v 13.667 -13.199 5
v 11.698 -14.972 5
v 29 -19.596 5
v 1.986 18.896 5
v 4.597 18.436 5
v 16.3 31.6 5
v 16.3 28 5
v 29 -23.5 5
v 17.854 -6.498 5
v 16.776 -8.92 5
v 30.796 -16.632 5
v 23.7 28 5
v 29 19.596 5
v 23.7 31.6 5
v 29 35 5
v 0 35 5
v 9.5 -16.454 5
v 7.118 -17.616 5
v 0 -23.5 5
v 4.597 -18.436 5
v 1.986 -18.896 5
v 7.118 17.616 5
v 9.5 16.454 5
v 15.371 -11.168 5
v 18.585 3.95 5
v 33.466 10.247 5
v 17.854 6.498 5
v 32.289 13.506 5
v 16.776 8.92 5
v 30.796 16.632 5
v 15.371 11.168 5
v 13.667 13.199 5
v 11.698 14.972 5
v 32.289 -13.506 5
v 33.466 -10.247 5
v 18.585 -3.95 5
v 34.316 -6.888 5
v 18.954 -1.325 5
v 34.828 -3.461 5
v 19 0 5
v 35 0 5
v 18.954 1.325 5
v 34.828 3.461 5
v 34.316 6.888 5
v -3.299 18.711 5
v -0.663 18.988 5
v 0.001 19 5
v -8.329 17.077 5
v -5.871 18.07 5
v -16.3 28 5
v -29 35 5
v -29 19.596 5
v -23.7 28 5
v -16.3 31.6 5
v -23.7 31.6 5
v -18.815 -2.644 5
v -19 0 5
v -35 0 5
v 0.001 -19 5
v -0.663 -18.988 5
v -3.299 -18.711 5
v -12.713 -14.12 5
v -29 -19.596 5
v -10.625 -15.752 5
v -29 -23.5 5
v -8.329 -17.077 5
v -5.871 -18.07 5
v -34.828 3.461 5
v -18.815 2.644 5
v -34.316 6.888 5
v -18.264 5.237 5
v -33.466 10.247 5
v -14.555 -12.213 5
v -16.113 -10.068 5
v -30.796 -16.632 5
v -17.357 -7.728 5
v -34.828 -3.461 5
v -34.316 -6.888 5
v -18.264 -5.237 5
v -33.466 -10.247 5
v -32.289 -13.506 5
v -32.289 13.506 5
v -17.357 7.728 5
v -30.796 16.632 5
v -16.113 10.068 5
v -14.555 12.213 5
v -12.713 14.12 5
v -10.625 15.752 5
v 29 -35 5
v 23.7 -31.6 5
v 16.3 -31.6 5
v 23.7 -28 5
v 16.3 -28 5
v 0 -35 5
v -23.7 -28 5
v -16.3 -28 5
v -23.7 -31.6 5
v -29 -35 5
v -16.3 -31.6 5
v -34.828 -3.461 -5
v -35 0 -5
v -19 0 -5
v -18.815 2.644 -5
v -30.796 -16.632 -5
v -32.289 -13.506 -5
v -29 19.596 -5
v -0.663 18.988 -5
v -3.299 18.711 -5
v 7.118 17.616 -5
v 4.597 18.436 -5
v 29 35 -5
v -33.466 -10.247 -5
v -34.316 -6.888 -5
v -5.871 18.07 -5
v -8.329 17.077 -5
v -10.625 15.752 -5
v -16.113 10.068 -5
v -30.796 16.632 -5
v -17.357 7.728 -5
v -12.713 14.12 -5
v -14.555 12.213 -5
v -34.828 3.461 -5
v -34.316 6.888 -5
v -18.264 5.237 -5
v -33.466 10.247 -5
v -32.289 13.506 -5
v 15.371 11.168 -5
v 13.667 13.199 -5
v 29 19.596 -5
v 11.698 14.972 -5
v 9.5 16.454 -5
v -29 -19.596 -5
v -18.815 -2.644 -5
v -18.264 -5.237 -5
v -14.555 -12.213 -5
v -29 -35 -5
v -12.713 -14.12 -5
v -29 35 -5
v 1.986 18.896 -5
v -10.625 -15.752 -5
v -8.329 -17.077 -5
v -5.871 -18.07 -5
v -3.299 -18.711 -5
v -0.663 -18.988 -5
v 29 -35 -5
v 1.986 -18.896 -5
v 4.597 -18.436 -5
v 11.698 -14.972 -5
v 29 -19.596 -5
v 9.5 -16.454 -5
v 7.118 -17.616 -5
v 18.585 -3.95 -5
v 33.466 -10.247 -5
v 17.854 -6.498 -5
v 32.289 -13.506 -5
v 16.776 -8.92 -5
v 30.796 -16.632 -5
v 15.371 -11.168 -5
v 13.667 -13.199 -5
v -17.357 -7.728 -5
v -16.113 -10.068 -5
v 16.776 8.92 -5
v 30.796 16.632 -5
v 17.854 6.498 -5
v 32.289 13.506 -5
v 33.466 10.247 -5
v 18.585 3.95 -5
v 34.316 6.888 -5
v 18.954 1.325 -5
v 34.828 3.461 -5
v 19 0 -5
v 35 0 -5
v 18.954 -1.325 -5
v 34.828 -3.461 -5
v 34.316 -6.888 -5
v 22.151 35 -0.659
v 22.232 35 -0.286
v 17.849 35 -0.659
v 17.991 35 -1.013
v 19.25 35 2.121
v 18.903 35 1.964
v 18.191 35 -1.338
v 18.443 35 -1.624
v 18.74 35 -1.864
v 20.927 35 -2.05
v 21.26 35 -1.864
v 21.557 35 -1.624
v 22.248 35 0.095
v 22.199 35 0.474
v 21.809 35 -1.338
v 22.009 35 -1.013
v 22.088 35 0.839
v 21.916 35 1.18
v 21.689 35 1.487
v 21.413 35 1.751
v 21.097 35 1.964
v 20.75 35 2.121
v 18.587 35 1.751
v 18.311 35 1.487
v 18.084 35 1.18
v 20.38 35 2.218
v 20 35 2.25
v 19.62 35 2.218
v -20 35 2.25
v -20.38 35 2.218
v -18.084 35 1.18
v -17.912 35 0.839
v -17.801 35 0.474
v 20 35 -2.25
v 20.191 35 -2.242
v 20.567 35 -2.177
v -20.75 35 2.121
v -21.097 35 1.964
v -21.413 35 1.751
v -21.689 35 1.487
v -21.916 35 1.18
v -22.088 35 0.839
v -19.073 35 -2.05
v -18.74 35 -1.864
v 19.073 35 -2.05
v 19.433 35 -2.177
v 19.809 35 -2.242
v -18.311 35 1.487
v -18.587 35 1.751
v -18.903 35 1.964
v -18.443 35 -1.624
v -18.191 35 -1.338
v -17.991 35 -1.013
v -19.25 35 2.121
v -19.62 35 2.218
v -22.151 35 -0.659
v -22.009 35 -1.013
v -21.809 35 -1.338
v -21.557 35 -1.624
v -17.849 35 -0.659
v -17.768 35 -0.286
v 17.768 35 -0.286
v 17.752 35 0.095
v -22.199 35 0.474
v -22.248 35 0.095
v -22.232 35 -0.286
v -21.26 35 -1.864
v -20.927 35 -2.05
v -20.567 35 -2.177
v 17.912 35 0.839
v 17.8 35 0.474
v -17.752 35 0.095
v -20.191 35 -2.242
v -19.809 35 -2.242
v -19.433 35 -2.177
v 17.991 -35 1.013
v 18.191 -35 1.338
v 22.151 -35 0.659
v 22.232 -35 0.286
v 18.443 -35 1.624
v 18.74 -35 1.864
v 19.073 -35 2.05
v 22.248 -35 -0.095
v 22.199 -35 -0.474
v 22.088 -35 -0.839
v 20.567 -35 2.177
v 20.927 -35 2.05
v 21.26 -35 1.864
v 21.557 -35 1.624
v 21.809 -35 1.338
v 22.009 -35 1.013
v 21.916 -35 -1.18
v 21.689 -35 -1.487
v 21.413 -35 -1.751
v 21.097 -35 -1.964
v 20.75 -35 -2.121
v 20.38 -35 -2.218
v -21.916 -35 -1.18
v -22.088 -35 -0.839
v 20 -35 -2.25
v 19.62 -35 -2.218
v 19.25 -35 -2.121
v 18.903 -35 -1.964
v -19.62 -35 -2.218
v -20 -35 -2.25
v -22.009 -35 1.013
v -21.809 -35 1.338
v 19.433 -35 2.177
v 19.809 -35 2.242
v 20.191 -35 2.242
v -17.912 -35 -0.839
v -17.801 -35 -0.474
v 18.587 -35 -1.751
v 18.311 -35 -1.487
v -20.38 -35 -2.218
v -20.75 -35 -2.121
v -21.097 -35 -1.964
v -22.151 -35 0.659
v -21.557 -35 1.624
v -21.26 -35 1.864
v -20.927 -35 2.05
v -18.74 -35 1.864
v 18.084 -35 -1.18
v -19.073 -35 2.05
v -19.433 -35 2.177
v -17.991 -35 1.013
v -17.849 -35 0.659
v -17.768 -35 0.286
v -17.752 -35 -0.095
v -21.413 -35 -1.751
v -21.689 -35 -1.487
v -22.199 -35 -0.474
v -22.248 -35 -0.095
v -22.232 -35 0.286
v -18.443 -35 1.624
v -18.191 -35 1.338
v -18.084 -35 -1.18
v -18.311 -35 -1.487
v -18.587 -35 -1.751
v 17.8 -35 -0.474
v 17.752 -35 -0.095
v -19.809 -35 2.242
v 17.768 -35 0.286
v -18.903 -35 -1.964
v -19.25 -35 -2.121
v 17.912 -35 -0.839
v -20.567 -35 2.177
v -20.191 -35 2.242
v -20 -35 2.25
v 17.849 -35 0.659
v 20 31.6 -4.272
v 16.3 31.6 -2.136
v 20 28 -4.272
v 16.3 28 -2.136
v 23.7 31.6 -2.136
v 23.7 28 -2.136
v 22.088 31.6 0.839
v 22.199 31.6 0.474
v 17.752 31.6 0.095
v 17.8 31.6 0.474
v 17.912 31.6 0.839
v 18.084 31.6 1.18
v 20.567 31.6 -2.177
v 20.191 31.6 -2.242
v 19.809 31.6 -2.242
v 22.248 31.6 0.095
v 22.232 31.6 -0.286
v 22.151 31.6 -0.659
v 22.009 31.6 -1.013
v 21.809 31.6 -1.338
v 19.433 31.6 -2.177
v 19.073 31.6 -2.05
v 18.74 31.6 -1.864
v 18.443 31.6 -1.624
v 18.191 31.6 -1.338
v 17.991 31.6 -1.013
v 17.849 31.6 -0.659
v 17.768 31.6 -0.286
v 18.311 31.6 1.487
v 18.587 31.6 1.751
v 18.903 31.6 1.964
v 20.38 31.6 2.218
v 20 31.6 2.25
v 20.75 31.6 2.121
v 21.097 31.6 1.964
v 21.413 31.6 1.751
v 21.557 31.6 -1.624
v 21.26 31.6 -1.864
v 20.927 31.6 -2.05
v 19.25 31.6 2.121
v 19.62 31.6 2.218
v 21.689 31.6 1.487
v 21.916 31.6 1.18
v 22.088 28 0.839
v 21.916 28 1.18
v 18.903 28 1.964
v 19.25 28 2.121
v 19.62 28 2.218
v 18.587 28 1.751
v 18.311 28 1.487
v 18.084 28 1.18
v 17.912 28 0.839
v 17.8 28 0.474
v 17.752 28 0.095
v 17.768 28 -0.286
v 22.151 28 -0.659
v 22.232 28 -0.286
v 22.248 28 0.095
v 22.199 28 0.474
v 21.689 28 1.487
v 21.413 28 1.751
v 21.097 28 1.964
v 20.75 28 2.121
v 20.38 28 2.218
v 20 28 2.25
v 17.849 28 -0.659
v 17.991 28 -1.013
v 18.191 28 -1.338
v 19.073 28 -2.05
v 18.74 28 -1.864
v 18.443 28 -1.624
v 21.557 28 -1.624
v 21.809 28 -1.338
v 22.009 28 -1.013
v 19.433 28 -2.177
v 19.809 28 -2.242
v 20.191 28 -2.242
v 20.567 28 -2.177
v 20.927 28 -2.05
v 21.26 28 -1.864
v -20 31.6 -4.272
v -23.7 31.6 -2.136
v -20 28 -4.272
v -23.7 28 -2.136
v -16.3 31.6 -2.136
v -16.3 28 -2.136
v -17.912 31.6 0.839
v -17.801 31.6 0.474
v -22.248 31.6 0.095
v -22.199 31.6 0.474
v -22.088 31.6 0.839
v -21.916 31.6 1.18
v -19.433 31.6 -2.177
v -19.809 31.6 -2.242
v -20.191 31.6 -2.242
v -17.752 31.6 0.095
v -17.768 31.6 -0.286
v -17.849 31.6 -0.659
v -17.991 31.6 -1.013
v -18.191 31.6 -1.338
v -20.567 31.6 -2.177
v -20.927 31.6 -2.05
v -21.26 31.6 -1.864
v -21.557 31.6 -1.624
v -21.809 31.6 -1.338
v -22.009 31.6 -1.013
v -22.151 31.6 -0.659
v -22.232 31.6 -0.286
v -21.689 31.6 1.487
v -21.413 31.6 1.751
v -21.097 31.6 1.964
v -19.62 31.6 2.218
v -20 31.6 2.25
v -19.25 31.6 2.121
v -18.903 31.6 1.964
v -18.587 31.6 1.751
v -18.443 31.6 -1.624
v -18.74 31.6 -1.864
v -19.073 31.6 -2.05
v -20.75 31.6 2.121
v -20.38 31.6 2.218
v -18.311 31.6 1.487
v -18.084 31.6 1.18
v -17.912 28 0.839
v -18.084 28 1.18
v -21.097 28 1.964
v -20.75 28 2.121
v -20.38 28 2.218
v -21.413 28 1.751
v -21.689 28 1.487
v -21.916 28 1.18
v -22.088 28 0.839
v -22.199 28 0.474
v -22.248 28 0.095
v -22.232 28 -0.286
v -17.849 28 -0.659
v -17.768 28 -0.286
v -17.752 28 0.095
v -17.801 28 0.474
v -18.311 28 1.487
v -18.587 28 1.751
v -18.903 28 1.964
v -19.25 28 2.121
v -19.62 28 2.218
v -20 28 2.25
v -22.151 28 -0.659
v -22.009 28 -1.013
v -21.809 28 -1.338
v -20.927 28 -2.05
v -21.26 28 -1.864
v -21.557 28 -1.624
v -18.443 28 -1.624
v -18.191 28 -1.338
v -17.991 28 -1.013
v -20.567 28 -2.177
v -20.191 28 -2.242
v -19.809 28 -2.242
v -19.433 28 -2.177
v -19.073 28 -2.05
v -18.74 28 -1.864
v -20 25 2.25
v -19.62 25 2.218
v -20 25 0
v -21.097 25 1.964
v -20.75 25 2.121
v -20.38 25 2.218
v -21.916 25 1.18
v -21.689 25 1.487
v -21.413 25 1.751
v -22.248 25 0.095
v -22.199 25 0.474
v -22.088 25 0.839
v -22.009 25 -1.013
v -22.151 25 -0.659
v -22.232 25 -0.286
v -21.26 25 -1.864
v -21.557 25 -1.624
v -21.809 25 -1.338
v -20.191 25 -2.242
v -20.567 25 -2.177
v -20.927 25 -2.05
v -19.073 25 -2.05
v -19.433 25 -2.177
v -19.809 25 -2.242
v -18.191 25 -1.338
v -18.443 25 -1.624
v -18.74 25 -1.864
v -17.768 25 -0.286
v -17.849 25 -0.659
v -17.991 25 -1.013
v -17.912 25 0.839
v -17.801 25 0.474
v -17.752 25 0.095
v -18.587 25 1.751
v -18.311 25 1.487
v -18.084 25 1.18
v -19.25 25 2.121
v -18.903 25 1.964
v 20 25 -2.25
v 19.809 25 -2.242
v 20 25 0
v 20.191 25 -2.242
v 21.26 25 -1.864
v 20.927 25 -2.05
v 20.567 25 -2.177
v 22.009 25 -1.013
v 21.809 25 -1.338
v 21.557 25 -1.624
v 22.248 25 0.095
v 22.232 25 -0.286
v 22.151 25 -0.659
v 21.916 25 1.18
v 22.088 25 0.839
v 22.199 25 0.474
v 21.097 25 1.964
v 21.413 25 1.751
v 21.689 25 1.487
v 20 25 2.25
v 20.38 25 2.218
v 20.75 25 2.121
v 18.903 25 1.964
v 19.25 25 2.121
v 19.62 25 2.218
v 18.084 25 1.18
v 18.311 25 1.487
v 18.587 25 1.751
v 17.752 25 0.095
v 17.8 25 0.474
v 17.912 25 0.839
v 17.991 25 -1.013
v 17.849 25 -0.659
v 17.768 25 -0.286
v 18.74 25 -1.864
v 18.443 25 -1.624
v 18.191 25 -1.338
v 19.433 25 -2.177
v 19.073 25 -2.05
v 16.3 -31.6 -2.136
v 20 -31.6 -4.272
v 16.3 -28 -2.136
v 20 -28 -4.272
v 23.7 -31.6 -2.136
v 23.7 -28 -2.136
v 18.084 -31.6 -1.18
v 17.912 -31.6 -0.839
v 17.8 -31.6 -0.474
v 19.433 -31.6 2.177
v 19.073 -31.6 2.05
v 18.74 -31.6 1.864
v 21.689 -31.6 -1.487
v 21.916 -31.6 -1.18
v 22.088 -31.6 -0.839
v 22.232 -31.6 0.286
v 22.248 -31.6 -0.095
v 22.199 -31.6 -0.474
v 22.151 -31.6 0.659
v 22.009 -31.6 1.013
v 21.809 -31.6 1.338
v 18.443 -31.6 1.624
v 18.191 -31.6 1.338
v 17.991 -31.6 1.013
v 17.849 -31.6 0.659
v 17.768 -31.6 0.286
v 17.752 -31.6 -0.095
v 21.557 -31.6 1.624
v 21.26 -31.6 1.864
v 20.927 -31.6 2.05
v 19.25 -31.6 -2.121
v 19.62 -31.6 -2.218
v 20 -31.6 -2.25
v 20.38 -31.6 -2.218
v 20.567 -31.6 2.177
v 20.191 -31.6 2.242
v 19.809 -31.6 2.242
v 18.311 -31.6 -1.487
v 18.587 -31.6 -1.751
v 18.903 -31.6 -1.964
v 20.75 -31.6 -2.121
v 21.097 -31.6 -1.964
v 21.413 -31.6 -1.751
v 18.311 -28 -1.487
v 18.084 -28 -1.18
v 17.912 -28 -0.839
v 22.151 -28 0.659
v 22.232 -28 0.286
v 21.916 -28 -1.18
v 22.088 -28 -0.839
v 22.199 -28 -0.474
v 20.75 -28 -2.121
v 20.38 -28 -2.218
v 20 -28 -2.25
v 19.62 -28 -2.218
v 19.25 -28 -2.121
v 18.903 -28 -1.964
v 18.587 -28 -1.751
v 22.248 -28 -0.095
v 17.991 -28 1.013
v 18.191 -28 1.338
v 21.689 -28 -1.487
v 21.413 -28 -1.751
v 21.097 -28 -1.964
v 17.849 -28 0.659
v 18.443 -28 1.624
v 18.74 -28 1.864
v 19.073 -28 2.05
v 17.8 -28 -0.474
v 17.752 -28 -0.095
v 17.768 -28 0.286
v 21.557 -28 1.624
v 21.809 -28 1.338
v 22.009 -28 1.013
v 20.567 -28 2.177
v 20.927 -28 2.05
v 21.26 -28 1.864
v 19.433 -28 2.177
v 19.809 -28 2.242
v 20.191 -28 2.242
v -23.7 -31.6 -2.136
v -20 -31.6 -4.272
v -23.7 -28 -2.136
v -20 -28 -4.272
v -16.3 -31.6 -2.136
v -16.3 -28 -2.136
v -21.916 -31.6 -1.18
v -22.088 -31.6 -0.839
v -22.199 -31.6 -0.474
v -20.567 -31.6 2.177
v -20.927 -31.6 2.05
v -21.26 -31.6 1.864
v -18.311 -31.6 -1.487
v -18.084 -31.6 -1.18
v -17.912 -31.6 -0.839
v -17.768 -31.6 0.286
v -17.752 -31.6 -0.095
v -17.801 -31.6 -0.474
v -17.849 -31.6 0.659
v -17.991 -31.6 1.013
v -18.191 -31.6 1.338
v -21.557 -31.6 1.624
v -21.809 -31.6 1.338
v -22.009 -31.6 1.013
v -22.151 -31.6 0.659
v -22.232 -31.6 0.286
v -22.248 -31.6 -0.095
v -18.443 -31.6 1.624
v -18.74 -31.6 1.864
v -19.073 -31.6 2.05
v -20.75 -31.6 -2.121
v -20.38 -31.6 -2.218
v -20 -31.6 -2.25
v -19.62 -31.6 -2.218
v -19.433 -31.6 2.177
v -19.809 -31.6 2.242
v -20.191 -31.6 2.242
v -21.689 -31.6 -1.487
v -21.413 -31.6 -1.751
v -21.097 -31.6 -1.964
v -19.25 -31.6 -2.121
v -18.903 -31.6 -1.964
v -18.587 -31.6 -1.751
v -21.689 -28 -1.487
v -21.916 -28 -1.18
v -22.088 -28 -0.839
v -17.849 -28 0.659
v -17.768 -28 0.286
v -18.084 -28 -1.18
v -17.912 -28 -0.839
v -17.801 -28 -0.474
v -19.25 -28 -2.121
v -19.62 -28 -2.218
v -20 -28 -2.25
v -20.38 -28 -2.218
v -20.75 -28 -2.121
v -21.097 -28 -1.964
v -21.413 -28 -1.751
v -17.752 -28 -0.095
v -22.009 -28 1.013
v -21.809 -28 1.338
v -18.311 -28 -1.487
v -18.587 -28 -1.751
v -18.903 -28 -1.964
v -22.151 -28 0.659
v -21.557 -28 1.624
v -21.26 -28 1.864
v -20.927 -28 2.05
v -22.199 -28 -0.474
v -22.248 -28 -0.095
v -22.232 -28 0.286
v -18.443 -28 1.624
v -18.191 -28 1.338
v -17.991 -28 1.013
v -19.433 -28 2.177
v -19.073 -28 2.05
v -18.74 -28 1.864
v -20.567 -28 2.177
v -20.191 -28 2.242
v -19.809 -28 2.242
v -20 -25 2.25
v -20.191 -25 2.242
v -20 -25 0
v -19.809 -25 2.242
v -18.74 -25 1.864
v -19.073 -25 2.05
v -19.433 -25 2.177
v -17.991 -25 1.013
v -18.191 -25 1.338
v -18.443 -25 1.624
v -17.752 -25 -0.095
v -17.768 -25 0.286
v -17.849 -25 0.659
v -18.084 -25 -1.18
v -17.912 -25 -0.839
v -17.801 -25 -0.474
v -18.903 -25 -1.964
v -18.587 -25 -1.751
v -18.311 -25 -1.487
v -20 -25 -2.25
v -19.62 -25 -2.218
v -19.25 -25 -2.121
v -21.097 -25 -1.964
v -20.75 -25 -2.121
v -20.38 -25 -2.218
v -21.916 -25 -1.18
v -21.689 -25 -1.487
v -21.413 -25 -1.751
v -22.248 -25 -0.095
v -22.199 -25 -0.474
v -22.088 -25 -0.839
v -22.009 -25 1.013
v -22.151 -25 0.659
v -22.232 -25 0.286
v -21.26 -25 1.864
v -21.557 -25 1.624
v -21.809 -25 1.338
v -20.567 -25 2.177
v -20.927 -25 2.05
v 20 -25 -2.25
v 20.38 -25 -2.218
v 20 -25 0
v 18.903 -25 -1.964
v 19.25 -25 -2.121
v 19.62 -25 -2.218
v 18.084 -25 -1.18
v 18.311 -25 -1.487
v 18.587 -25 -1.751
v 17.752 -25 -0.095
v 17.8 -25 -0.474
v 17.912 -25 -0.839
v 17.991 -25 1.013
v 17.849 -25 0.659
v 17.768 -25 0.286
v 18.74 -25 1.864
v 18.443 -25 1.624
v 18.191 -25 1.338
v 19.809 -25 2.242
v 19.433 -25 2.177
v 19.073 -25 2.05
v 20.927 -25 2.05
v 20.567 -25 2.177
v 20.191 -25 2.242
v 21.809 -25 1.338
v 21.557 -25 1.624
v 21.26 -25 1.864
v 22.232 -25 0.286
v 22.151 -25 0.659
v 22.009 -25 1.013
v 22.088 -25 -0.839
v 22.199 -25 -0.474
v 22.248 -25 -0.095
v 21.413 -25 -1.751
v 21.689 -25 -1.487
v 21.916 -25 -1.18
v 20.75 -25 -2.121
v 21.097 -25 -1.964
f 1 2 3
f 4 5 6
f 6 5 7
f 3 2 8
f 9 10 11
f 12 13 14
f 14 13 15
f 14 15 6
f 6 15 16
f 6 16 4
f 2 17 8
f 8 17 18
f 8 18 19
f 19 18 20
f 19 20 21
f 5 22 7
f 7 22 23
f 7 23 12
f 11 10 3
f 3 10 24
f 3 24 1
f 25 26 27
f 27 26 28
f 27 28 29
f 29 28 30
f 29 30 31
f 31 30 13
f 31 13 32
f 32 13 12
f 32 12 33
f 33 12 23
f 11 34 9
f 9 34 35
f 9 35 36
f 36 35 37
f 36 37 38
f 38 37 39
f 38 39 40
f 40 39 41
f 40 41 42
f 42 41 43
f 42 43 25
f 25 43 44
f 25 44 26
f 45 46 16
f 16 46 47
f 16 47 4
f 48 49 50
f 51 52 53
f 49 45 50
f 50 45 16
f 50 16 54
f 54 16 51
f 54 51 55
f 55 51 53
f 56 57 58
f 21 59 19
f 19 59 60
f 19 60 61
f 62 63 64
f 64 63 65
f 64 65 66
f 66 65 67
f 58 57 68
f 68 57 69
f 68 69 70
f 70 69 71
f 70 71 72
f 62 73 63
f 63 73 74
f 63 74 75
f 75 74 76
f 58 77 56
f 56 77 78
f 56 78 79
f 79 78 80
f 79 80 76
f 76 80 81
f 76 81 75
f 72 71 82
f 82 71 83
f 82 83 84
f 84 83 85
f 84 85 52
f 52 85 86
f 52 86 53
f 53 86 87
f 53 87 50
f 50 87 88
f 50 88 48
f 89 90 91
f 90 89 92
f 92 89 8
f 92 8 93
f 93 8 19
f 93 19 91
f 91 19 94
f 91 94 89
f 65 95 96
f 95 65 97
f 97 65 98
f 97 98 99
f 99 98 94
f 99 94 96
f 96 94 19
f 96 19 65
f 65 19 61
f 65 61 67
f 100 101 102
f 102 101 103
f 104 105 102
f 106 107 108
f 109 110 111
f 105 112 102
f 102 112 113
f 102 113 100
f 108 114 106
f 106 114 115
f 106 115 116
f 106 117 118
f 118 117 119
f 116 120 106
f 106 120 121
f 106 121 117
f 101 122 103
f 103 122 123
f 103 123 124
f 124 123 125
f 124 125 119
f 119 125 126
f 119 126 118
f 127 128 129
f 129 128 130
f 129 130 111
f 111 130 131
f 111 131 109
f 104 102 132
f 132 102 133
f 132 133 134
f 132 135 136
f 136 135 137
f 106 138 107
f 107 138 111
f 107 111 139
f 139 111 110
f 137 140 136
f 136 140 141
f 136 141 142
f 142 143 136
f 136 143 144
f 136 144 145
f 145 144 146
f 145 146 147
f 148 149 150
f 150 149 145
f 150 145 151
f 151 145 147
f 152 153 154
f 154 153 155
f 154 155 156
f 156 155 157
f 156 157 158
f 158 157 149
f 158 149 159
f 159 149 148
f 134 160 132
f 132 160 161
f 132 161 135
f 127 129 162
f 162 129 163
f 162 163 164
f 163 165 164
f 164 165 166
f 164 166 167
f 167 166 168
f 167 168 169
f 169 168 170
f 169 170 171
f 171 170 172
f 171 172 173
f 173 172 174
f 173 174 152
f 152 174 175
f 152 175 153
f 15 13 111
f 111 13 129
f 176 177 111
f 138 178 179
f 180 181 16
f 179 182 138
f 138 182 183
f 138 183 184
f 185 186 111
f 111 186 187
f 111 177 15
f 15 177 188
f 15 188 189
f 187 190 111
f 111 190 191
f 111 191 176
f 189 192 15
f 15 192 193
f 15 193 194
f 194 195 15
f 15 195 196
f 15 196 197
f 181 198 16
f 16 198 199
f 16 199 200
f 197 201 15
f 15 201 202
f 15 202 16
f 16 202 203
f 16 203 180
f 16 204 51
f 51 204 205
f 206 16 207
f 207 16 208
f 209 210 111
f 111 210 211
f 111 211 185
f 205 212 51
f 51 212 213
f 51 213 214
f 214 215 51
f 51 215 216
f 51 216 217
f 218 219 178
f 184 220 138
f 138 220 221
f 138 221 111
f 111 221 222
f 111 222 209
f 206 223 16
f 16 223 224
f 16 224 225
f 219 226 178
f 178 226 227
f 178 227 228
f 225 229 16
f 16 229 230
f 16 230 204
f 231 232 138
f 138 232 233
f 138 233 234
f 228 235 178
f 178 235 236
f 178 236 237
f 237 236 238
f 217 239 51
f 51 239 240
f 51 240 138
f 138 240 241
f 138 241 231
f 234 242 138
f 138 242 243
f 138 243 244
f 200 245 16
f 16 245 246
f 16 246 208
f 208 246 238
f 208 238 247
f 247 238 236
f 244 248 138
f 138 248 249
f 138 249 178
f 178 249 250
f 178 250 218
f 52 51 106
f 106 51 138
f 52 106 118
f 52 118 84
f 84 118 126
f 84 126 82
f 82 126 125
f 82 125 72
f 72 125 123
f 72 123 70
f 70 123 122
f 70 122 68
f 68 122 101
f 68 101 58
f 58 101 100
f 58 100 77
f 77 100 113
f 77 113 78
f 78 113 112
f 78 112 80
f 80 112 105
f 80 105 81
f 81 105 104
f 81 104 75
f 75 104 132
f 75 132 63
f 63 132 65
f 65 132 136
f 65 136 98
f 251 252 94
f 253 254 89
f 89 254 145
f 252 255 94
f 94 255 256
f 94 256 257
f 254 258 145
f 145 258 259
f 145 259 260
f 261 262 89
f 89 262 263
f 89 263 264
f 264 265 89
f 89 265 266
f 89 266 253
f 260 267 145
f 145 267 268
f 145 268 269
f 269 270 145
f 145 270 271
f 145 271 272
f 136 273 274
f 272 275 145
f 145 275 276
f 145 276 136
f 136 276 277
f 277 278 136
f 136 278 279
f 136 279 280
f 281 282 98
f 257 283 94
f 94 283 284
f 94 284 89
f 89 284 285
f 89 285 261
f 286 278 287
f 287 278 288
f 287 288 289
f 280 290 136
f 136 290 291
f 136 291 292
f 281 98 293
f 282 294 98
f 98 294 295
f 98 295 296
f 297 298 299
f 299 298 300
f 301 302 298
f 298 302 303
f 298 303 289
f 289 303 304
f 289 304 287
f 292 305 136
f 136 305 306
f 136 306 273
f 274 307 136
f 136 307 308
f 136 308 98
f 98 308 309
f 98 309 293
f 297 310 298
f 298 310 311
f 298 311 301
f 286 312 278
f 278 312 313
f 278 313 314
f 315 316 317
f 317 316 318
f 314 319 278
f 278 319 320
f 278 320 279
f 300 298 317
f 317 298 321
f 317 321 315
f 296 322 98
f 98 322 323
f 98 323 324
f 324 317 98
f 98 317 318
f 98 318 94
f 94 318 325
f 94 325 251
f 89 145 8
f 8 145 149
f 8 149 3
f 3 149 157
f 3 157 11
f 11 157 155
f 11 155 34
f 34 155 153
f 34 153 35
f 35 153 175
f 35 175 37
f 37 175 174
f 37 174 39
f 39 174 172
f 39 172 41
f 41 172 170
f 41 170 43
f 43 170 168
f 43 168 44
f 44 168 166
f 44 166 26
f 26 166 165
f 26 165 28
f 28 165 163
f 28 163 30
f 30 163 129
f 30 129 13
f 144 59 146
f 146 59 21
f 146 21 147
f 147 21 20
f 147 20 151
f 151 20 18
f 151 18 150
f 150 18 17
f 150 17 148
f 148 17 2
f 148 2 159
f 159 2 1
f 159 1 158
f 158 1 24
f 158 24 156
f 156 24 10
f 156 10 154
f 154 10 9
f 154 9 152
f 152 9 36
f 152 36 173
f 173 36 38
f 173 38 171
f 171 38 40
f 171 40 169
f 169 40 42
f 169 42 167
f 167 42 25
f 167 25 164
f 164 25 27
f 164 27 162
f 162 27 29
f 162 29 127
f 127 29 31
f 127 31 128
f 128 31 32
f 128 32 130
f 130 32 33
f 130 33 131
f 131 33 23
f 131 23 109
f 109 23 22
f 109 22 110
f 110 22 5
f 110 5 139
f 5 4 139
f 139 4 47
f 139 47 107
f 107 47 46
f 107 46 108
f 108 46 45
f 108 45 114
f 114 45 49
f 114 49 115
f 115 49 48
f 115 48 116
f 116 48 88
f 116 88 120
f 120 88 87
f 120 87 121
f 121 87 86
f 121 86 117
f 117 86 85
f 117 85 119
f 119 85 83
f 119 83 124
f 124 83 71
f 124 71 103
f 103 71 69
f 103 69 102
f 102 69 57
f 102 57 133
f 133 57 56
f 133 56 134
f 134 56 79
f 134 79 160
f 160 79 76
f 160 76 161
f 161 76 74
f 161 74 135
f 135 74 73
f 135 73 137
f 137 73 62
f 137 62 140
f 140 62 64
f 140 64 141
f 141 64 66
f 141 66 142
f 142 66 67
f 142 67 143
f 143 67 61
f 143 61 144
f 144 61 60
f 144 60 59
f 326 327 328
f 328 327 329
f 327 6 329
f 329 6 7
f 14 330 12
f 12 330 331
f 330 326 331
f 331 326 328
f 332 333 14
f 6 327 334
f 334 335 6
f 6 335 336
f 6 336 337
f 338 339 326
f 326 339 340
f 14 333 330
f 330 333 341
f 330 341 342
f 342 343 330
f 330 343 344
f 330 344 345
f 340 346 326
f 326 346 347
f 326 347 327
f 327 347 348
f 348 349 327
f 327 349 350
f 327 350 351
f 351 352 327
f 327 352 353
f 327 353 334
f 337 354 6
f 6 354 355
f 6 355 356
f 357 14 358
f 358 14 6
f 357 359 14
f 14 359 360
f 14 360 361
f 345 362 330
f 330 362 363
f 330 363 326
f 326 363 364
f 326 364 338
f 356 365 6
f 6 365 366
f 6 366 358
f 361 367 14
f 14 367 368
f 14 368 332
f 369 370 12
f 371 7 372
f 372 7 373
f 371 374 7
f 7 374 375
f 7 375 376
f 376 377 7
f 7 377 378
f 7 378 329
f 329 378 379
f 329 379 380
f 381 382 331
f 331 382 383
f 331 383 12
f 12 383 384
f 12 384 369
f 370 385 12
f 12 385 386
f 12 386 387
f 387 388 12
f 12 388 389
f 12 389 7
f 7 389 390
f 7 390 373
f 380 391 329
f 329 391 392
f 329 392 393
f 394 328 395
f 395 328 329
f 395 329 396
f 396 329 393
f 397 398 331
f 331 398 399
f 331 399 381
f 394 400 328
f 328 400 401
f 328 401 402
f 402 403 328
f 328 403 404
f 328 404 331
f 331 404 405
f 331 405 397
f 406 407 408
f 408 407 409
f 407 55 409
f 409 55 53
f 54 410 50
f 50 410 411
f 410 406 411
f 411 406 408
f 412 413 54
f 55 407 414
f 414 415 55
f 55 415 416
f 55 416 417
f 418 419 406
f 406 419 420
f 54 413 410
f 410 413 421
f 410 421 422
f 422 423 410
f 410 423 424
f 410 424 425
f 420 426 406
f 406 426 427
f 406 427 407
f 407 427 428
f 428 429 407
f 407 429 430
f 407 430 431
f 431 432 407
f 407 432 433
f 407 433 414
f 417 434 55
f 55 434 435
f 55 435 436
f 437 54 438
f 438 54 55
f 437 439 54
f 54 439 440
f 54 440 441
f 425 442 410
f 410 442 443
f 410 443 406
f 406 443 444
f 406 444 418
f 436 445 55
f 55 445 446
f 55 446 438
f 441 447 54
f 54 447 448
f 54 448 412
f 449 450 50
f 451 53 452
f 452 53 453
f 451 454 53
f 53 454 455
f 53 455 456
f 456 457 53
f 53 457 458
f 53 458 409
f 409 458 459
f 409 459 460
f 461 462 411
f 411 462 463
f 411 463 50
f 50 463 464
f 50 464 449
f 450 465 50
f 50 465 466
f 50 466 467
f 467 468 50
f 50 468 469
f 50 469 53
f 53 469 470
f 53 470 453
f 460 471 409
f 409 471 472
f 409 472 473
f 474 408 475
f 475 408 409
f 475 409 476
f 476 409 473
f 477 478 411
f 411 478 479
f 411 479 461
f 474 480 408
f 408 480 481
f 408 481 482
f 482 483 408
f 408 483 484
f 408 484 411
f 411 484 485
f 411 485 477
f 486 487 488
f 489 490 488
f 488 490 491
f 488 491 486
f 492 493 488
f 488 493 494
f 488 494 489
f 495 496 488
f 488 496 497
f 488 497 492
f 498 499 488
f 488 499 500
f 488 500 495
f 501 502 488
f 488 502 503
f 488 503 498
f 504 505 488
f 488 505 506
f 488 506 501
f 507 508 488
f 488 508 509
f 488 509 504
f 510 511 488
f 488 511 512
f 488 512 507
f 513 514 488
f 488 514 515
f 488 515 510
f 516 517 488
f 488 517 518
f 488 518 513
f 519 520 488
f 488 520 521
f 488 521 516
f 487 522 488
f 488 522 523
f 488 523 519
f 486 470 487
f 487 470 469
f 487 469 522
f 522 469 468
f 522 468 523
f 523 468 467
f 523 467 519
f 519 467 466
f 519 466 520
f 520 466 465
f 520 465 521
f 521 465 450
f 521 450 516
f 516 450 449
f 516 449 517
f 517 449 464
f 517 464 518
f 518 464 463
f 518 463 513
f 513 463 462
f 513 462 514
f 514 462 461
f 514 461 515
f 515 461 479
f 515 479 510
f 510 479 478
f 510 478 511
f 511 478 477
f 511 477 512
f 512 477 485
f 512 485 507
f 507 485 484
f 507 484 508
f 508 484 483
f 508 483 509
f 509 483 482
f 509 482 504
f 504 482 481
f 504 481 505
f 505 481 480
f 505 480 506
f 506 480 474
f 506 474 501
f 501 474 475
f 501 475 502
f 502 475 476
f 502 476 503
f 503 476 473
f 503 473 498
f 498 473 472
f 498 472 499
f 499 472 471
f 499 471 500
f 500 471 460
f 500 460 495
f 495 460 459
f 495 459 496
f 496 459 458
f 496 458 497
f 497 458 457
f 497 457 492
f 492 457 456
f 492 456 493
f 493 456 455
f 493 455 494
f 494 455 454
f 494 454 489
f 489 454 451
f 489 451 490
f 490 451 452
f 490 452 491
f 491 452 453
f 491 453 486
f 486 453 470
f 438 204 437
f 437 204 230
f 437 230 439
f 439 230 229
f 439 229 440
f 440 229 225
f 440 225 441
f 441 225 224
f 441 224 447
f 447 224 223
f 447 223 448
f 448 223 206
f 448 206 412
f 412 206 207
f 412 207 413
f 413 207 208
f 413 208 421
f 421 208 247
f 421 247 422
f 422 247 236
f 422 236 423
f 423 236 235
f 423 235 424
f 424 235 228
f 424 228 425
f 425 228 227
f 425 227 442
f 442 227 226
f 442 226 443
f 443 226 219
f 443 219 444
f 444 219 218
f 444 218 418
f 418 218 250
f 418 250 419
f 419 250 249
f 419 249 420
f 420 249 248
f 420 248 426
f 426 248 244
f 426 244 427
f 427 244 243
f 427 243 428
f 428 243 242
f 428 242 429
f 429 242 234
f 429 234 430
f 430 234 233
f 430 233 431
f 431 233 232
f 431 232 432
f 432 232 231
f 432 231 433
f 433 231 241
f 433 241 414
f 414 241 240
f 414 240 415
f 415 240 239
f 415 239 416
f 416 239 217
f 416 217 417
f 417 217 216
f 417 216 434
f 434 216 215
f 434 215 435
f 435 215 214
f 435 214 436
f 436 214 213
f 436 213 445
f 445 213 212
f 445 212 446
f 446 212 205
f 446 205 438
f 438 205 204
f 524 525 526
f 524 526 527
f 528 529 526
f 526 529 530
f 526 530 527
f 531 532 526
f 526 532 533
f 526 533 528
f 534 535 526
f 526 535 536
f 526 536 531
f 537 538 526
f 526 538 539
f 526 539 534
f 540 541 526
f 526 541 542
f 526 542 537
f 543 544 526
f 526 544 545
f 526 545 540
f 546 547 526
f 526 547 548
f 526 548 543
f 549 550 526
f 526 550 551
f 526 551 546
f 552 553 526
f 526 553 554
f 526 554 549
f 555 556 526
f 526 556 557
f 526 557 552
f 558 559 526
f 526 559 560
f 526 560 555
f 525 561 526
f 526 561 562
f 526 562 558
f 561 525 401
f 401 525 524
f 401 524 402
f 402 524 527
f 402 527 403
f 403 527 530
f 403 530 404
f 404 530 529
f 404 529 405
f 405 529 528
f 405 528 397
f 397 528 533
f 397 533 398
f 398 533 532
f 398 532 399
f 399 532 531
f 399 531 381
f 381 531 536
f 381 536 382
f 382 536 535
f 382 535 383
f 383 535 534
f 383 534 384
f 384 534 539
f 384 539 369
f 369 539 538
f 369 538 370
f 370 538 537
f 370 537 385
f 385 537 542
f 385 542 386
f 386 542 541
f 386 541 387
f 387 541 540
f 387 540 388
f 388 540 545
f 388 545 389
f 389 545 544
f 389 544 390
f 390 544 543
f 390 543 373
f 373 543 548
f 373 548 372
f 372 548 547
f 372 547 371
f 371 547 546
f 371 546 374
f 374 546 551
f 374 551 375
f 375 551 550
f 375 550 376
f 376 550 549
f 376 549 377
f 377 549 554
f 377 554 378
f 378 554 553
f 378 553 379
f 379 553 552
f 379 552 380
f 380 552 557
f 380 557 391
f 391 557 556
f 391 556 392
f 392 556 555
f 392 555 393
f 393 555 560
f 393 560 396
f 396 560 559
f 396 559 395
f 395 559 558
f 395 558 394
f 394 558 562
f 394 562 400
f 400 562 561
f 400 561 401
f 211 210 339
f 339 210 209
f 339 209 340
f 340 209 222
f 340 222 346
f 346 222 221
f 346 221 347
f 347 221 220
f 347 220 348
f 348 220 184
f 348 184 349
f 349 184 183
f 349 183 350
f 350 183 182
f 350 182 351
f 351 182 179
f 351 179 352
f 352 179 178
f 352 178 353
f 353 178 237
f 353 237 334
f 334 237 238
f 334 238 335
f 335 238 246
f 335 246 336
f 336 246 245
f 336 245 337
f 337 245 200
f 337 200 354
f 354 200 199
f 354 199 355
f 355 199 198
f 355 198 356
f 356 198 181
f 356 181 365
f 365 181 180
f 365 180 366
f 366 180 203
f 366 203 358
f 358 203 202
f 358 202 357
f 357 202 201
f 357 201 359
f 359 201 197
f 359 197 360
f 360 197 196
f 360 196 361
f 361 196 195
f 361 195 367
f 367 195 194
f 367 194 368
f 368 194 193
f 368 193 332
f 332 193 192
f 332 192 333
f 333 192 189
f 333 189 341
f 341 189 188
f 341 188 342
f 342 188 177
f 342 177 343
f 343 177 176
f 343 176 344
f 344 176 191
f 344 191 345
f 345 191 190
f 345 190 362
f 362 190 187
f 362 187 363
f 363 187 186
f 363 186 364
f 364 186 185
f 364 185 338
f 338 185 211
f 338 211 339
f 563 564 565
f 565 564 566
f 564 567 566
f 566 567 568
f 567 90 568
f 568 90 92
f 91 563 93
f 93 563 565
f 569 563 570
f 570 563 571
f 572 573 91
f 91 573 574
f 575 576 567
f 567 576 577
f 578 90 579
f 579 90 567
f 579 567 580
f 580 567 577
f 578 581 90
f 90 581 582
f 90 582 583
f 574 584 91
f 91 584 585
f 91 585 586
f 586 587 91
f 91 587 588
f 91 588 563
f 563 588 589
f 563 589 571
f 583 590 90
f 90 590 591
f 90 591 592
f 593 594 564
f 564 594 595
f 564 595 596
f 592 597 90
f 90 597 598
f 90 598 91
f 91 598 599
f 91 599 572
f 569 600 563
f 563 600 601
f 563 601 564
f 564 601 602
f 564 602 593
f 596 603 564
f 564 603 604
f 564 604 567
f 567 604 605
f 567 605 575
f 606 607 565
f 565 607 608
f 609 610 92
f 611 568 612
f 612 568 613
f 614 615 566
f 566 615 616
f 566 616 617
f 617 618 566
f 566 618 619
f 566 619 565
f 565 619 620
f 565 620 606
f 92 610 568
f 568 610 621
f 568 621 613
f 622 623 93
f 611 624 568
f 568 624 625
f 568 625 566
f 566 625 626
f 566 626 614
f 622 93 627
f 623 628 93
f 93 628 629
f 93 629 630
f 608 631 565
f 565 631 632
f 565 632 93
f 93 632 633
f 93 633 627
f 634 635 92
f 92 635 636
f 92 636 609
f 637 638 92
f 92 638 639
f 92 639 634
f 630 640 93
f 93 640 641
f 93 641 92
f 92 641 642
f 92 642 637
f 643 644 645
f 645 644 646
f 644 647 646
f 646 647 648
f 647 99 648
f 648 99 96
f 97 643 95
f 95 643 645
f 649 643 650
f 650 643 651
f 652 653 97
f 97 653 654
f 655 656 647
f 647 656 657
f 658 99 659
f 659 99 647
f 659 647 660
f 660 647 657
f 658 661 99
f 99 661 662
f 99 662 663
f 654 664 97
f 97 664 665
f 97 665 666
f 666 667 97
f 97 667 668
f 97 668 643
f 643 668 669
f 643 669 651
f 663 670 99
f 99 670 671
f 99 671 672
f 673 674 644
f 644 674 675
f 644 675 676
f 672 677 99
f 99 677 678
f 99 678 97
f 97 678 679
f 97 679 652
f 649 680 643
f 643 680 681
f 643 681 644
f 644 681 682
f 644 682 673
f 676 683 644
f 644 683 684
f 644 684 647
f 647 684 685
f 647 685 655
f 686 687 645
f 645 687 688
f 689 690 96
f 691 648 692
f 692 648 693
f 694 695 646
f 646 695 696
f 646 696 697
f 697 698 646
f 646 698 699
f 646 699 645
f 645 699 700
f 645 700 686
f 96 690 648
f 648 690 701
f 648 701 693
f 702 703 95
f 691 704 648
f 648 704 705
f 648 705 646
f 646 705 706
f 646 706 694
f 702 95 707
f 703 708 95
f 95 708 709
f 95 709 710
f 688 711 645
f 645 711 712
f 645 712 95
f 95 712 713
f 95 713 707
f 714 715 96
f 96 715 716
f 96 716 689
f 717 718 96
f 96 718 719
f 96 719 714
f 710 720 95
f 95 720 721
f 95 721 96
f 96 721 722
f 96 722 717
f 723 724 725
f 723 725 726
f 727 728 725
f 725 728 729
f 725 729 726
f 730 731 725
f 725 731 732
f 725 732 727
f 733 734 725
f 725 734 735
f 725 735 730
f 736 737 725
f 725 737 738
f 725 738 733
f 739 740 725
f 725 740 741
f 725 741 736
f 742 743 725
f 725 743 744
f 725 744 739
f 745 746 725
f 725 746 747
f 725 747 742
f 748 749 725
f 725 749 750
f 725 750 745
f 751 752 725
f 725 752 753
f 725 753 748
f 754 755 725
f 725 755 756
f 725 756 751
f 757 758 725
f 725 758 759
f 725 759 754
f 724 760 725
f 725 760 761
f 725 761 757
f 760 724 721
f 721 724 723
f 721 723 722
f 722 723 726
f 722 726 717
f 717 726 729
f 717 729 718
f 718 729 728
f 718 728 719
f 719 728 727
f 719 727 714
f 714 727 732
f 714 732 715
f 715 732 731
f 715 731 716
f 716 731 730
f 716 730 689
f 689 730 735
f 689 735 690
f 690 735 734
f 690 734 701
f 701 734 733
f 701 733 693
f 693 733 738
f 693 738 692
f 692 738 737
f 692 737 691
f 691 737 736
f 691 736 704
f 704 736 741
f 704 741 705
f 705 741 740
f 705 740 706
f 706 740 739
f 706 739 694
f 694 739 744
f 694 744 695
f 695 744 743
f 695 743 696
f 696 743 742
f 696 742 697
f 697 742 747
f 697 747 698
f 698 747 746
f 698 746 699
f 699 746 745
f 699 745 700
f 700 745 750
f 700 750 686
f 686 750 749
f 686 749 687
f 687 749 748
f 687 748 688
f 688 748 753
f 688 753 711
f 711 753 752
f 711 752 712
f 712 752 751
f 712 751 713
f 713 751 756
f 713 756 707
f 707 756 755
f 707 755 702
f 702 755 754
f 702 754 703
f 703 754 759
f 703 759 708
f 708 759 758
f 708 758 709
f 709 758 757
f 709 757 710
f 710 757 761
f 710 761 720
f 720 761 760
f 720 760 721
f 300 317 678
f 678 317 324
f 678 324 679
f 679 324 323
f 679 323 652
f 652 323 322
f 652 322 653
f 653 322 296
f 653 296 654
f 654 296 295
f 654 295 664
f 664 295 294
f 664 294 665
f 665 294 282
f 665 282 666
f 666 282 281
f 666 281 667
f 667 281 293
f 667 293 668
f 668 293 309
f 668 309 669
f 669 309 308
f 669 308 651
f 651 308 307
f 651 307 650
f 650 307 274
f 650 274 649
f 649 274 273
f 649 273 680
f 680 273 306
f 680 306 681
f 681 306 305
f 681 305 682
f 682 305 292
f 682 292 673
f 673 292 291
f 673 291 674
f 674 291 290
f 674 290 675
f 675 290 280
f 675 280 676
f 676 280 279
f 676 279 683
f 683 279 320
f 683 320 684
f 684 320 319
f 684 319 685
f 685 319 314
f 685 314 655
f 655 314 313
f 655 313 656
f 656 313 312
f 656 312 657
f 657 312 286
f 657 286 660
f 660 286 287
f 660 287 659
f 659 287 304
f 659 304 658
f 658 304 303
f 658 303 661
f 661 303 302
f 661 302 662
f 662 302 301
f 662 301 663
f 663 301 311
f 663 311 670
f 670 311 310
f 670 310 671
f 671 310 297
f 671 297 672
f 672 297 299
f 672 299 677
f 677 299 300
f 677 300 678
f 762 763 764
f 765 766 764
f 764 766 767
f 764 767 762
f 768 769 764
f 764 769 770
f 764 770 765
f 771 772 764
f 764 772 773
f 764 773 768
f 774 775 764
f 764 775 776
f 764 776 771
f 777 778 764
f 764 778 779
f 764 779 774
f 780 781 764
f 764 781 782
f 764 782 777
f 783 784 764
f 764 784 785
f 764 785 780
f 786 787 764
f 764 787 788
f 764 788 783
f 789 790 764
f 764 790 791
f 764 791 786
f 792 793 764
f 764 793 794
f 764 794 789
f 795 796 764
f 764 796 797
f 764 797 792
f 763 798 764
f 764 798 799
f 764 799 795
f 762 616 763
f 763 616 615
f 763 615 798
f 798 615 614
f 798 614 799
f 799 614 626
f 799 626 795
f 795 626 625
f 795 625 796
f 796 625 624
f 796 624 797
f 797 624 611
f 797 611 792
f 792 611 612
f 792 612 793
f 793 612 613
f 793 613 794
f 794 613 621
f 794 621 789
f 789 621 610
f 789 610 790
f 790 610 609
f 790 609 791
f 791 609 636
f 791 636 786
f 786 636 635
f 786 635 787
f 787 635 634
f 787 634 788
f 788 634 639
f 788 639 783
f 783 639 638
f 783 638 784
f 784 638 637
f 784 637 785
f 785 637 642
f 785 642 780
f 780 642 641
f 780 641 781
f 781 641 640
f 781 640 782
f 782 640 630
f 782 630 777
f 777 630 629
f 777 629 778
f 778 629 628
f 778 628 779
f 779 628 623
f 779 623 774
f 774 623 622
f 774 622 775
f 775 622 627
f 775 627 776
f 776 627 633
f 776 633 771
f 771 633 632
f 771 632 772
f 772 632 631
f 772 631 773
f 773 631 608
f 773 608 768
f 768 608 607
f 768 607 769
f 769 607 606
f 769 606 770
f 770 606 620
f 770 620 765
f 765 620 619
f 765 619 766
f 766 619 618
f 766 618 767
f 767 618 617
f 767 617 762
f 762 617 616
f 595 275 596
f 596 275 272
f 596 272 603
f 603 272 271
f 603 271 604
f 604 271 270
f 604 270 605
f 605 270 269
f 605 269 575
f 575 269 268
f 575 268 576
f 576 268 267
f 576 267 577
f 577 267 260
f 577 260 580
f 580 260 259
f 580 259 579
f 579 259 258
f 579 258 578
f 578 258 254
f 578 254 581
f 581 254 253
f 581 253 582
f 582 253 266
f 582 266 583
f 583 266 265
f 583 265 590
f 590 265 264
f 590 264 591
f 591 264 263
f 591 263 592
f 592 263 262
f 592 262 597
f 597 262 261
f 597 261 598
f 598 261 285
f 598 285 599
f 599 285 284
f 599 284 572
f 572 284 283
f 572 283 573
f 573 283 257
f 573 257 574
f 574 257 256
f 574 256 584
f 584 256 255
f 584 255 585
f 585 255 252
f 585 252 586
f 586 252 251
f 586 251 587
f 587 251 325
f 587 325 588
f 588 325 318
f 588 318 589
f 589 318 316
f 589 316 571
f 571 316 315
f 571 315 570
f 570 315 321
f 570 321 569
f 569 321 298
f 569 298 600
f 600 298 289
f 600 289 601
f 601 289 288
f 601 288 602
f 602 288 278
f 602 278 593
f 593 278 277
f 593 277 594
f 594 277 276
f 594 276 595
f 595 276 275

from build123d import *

# Parameters (mm, degrees)
CROQUIS1_R              = 19
SALIENTE_EXTRUIR1_DEPTH = 5
CORTAR_EXTRUIR1_DEPTH   = 3.6
CROQUIS6_R              = 2.25
CORTAR_EXTRUIR2_DEPTH   = 10


with BuildPart() as part:
    # Croquis1 → Saliente-Extruir1 (new, symmetric)
    with BuildSketch(Plane.XY):
        with BuildLine():
            Line((-29, 19.595917942), (-29, 35))
            Line((-29, 35), (29, 35))
            Line((29, 35), (29, 19.595917942))
            ThreePointArc((29, 19.595917942), (35, 0), (29, -19.595917942))
            Line((29, -19.595917942), (29, -35))
            Line((29, -35), (-29, -35))
            Line((-29, -35), (-29, -19.595917942))
            ThreePointArc((-29, -19.595917942), (-35, 0), (-29, 19.595917942))
        make_face()
        Circle(CROQUIS1_R, mode=Mode.SUBTRACT)
    extrude(amount=SALIENTE_EXTRUIR1_DEPTH, both=True)

    # Croquis5 → Cortar-Extruir1 (cut)
    with BuildSketch(Plane(origin=(0, 28, 0), x_dir=(1, 0, 0), z_dir=(0, 1, 0))):
        Polygon((-23.7, -2.136195996), (-23.7, -5), (-16.3, -5), (-16.3, -2.136195996), (-16.3, 2.136195996), (-20, 4.272391992), (-23.7, 2.136195996), align=None)
        Polygon((16.3, 2.136195996), (16.3, -2.136195996), (16.3, -5), (23.7, -5), (23.7, -2.136195996), (23.7, 2.136195996), (20, 4.272391992), align=None)
    cortar_extruir1 = extrude(amount=CORTAR_EXTRUIR1_DEPTH, mode=Mode.SUBTRACT)

    # Croquis6 → Cortar-Extruir2 (cut)
    with BuildSketch(Plane(origin=(0, 35, 0), x_dir=(1, 0, 0), z_dir=(0, 1, 0))):
        with Locations(Location((-20, 0, 0), (0, 0, 270))):
            Circle(CROQUIS6_R)
        with Locations(Location((20, 0, 0), (0, 0, 270))):
            Circle(CROQUIS6_R)
    cortar_extruir2 = extrude(amount=-CORTAR_EXTRUIR2_DEPTH, mode=Mode.SUBTRACT)

    # Simetría1: Cortar-Extruir1, Cortar-Extruir2 across plane
    add(cortar_extruir1.mirror(Plane.ZX), mode=Mode.SUBTRACT)
    add(cortar_extruir2.mirror(Plane.ZX), mode=Mode.SUBTRACT)


solid = part.part
